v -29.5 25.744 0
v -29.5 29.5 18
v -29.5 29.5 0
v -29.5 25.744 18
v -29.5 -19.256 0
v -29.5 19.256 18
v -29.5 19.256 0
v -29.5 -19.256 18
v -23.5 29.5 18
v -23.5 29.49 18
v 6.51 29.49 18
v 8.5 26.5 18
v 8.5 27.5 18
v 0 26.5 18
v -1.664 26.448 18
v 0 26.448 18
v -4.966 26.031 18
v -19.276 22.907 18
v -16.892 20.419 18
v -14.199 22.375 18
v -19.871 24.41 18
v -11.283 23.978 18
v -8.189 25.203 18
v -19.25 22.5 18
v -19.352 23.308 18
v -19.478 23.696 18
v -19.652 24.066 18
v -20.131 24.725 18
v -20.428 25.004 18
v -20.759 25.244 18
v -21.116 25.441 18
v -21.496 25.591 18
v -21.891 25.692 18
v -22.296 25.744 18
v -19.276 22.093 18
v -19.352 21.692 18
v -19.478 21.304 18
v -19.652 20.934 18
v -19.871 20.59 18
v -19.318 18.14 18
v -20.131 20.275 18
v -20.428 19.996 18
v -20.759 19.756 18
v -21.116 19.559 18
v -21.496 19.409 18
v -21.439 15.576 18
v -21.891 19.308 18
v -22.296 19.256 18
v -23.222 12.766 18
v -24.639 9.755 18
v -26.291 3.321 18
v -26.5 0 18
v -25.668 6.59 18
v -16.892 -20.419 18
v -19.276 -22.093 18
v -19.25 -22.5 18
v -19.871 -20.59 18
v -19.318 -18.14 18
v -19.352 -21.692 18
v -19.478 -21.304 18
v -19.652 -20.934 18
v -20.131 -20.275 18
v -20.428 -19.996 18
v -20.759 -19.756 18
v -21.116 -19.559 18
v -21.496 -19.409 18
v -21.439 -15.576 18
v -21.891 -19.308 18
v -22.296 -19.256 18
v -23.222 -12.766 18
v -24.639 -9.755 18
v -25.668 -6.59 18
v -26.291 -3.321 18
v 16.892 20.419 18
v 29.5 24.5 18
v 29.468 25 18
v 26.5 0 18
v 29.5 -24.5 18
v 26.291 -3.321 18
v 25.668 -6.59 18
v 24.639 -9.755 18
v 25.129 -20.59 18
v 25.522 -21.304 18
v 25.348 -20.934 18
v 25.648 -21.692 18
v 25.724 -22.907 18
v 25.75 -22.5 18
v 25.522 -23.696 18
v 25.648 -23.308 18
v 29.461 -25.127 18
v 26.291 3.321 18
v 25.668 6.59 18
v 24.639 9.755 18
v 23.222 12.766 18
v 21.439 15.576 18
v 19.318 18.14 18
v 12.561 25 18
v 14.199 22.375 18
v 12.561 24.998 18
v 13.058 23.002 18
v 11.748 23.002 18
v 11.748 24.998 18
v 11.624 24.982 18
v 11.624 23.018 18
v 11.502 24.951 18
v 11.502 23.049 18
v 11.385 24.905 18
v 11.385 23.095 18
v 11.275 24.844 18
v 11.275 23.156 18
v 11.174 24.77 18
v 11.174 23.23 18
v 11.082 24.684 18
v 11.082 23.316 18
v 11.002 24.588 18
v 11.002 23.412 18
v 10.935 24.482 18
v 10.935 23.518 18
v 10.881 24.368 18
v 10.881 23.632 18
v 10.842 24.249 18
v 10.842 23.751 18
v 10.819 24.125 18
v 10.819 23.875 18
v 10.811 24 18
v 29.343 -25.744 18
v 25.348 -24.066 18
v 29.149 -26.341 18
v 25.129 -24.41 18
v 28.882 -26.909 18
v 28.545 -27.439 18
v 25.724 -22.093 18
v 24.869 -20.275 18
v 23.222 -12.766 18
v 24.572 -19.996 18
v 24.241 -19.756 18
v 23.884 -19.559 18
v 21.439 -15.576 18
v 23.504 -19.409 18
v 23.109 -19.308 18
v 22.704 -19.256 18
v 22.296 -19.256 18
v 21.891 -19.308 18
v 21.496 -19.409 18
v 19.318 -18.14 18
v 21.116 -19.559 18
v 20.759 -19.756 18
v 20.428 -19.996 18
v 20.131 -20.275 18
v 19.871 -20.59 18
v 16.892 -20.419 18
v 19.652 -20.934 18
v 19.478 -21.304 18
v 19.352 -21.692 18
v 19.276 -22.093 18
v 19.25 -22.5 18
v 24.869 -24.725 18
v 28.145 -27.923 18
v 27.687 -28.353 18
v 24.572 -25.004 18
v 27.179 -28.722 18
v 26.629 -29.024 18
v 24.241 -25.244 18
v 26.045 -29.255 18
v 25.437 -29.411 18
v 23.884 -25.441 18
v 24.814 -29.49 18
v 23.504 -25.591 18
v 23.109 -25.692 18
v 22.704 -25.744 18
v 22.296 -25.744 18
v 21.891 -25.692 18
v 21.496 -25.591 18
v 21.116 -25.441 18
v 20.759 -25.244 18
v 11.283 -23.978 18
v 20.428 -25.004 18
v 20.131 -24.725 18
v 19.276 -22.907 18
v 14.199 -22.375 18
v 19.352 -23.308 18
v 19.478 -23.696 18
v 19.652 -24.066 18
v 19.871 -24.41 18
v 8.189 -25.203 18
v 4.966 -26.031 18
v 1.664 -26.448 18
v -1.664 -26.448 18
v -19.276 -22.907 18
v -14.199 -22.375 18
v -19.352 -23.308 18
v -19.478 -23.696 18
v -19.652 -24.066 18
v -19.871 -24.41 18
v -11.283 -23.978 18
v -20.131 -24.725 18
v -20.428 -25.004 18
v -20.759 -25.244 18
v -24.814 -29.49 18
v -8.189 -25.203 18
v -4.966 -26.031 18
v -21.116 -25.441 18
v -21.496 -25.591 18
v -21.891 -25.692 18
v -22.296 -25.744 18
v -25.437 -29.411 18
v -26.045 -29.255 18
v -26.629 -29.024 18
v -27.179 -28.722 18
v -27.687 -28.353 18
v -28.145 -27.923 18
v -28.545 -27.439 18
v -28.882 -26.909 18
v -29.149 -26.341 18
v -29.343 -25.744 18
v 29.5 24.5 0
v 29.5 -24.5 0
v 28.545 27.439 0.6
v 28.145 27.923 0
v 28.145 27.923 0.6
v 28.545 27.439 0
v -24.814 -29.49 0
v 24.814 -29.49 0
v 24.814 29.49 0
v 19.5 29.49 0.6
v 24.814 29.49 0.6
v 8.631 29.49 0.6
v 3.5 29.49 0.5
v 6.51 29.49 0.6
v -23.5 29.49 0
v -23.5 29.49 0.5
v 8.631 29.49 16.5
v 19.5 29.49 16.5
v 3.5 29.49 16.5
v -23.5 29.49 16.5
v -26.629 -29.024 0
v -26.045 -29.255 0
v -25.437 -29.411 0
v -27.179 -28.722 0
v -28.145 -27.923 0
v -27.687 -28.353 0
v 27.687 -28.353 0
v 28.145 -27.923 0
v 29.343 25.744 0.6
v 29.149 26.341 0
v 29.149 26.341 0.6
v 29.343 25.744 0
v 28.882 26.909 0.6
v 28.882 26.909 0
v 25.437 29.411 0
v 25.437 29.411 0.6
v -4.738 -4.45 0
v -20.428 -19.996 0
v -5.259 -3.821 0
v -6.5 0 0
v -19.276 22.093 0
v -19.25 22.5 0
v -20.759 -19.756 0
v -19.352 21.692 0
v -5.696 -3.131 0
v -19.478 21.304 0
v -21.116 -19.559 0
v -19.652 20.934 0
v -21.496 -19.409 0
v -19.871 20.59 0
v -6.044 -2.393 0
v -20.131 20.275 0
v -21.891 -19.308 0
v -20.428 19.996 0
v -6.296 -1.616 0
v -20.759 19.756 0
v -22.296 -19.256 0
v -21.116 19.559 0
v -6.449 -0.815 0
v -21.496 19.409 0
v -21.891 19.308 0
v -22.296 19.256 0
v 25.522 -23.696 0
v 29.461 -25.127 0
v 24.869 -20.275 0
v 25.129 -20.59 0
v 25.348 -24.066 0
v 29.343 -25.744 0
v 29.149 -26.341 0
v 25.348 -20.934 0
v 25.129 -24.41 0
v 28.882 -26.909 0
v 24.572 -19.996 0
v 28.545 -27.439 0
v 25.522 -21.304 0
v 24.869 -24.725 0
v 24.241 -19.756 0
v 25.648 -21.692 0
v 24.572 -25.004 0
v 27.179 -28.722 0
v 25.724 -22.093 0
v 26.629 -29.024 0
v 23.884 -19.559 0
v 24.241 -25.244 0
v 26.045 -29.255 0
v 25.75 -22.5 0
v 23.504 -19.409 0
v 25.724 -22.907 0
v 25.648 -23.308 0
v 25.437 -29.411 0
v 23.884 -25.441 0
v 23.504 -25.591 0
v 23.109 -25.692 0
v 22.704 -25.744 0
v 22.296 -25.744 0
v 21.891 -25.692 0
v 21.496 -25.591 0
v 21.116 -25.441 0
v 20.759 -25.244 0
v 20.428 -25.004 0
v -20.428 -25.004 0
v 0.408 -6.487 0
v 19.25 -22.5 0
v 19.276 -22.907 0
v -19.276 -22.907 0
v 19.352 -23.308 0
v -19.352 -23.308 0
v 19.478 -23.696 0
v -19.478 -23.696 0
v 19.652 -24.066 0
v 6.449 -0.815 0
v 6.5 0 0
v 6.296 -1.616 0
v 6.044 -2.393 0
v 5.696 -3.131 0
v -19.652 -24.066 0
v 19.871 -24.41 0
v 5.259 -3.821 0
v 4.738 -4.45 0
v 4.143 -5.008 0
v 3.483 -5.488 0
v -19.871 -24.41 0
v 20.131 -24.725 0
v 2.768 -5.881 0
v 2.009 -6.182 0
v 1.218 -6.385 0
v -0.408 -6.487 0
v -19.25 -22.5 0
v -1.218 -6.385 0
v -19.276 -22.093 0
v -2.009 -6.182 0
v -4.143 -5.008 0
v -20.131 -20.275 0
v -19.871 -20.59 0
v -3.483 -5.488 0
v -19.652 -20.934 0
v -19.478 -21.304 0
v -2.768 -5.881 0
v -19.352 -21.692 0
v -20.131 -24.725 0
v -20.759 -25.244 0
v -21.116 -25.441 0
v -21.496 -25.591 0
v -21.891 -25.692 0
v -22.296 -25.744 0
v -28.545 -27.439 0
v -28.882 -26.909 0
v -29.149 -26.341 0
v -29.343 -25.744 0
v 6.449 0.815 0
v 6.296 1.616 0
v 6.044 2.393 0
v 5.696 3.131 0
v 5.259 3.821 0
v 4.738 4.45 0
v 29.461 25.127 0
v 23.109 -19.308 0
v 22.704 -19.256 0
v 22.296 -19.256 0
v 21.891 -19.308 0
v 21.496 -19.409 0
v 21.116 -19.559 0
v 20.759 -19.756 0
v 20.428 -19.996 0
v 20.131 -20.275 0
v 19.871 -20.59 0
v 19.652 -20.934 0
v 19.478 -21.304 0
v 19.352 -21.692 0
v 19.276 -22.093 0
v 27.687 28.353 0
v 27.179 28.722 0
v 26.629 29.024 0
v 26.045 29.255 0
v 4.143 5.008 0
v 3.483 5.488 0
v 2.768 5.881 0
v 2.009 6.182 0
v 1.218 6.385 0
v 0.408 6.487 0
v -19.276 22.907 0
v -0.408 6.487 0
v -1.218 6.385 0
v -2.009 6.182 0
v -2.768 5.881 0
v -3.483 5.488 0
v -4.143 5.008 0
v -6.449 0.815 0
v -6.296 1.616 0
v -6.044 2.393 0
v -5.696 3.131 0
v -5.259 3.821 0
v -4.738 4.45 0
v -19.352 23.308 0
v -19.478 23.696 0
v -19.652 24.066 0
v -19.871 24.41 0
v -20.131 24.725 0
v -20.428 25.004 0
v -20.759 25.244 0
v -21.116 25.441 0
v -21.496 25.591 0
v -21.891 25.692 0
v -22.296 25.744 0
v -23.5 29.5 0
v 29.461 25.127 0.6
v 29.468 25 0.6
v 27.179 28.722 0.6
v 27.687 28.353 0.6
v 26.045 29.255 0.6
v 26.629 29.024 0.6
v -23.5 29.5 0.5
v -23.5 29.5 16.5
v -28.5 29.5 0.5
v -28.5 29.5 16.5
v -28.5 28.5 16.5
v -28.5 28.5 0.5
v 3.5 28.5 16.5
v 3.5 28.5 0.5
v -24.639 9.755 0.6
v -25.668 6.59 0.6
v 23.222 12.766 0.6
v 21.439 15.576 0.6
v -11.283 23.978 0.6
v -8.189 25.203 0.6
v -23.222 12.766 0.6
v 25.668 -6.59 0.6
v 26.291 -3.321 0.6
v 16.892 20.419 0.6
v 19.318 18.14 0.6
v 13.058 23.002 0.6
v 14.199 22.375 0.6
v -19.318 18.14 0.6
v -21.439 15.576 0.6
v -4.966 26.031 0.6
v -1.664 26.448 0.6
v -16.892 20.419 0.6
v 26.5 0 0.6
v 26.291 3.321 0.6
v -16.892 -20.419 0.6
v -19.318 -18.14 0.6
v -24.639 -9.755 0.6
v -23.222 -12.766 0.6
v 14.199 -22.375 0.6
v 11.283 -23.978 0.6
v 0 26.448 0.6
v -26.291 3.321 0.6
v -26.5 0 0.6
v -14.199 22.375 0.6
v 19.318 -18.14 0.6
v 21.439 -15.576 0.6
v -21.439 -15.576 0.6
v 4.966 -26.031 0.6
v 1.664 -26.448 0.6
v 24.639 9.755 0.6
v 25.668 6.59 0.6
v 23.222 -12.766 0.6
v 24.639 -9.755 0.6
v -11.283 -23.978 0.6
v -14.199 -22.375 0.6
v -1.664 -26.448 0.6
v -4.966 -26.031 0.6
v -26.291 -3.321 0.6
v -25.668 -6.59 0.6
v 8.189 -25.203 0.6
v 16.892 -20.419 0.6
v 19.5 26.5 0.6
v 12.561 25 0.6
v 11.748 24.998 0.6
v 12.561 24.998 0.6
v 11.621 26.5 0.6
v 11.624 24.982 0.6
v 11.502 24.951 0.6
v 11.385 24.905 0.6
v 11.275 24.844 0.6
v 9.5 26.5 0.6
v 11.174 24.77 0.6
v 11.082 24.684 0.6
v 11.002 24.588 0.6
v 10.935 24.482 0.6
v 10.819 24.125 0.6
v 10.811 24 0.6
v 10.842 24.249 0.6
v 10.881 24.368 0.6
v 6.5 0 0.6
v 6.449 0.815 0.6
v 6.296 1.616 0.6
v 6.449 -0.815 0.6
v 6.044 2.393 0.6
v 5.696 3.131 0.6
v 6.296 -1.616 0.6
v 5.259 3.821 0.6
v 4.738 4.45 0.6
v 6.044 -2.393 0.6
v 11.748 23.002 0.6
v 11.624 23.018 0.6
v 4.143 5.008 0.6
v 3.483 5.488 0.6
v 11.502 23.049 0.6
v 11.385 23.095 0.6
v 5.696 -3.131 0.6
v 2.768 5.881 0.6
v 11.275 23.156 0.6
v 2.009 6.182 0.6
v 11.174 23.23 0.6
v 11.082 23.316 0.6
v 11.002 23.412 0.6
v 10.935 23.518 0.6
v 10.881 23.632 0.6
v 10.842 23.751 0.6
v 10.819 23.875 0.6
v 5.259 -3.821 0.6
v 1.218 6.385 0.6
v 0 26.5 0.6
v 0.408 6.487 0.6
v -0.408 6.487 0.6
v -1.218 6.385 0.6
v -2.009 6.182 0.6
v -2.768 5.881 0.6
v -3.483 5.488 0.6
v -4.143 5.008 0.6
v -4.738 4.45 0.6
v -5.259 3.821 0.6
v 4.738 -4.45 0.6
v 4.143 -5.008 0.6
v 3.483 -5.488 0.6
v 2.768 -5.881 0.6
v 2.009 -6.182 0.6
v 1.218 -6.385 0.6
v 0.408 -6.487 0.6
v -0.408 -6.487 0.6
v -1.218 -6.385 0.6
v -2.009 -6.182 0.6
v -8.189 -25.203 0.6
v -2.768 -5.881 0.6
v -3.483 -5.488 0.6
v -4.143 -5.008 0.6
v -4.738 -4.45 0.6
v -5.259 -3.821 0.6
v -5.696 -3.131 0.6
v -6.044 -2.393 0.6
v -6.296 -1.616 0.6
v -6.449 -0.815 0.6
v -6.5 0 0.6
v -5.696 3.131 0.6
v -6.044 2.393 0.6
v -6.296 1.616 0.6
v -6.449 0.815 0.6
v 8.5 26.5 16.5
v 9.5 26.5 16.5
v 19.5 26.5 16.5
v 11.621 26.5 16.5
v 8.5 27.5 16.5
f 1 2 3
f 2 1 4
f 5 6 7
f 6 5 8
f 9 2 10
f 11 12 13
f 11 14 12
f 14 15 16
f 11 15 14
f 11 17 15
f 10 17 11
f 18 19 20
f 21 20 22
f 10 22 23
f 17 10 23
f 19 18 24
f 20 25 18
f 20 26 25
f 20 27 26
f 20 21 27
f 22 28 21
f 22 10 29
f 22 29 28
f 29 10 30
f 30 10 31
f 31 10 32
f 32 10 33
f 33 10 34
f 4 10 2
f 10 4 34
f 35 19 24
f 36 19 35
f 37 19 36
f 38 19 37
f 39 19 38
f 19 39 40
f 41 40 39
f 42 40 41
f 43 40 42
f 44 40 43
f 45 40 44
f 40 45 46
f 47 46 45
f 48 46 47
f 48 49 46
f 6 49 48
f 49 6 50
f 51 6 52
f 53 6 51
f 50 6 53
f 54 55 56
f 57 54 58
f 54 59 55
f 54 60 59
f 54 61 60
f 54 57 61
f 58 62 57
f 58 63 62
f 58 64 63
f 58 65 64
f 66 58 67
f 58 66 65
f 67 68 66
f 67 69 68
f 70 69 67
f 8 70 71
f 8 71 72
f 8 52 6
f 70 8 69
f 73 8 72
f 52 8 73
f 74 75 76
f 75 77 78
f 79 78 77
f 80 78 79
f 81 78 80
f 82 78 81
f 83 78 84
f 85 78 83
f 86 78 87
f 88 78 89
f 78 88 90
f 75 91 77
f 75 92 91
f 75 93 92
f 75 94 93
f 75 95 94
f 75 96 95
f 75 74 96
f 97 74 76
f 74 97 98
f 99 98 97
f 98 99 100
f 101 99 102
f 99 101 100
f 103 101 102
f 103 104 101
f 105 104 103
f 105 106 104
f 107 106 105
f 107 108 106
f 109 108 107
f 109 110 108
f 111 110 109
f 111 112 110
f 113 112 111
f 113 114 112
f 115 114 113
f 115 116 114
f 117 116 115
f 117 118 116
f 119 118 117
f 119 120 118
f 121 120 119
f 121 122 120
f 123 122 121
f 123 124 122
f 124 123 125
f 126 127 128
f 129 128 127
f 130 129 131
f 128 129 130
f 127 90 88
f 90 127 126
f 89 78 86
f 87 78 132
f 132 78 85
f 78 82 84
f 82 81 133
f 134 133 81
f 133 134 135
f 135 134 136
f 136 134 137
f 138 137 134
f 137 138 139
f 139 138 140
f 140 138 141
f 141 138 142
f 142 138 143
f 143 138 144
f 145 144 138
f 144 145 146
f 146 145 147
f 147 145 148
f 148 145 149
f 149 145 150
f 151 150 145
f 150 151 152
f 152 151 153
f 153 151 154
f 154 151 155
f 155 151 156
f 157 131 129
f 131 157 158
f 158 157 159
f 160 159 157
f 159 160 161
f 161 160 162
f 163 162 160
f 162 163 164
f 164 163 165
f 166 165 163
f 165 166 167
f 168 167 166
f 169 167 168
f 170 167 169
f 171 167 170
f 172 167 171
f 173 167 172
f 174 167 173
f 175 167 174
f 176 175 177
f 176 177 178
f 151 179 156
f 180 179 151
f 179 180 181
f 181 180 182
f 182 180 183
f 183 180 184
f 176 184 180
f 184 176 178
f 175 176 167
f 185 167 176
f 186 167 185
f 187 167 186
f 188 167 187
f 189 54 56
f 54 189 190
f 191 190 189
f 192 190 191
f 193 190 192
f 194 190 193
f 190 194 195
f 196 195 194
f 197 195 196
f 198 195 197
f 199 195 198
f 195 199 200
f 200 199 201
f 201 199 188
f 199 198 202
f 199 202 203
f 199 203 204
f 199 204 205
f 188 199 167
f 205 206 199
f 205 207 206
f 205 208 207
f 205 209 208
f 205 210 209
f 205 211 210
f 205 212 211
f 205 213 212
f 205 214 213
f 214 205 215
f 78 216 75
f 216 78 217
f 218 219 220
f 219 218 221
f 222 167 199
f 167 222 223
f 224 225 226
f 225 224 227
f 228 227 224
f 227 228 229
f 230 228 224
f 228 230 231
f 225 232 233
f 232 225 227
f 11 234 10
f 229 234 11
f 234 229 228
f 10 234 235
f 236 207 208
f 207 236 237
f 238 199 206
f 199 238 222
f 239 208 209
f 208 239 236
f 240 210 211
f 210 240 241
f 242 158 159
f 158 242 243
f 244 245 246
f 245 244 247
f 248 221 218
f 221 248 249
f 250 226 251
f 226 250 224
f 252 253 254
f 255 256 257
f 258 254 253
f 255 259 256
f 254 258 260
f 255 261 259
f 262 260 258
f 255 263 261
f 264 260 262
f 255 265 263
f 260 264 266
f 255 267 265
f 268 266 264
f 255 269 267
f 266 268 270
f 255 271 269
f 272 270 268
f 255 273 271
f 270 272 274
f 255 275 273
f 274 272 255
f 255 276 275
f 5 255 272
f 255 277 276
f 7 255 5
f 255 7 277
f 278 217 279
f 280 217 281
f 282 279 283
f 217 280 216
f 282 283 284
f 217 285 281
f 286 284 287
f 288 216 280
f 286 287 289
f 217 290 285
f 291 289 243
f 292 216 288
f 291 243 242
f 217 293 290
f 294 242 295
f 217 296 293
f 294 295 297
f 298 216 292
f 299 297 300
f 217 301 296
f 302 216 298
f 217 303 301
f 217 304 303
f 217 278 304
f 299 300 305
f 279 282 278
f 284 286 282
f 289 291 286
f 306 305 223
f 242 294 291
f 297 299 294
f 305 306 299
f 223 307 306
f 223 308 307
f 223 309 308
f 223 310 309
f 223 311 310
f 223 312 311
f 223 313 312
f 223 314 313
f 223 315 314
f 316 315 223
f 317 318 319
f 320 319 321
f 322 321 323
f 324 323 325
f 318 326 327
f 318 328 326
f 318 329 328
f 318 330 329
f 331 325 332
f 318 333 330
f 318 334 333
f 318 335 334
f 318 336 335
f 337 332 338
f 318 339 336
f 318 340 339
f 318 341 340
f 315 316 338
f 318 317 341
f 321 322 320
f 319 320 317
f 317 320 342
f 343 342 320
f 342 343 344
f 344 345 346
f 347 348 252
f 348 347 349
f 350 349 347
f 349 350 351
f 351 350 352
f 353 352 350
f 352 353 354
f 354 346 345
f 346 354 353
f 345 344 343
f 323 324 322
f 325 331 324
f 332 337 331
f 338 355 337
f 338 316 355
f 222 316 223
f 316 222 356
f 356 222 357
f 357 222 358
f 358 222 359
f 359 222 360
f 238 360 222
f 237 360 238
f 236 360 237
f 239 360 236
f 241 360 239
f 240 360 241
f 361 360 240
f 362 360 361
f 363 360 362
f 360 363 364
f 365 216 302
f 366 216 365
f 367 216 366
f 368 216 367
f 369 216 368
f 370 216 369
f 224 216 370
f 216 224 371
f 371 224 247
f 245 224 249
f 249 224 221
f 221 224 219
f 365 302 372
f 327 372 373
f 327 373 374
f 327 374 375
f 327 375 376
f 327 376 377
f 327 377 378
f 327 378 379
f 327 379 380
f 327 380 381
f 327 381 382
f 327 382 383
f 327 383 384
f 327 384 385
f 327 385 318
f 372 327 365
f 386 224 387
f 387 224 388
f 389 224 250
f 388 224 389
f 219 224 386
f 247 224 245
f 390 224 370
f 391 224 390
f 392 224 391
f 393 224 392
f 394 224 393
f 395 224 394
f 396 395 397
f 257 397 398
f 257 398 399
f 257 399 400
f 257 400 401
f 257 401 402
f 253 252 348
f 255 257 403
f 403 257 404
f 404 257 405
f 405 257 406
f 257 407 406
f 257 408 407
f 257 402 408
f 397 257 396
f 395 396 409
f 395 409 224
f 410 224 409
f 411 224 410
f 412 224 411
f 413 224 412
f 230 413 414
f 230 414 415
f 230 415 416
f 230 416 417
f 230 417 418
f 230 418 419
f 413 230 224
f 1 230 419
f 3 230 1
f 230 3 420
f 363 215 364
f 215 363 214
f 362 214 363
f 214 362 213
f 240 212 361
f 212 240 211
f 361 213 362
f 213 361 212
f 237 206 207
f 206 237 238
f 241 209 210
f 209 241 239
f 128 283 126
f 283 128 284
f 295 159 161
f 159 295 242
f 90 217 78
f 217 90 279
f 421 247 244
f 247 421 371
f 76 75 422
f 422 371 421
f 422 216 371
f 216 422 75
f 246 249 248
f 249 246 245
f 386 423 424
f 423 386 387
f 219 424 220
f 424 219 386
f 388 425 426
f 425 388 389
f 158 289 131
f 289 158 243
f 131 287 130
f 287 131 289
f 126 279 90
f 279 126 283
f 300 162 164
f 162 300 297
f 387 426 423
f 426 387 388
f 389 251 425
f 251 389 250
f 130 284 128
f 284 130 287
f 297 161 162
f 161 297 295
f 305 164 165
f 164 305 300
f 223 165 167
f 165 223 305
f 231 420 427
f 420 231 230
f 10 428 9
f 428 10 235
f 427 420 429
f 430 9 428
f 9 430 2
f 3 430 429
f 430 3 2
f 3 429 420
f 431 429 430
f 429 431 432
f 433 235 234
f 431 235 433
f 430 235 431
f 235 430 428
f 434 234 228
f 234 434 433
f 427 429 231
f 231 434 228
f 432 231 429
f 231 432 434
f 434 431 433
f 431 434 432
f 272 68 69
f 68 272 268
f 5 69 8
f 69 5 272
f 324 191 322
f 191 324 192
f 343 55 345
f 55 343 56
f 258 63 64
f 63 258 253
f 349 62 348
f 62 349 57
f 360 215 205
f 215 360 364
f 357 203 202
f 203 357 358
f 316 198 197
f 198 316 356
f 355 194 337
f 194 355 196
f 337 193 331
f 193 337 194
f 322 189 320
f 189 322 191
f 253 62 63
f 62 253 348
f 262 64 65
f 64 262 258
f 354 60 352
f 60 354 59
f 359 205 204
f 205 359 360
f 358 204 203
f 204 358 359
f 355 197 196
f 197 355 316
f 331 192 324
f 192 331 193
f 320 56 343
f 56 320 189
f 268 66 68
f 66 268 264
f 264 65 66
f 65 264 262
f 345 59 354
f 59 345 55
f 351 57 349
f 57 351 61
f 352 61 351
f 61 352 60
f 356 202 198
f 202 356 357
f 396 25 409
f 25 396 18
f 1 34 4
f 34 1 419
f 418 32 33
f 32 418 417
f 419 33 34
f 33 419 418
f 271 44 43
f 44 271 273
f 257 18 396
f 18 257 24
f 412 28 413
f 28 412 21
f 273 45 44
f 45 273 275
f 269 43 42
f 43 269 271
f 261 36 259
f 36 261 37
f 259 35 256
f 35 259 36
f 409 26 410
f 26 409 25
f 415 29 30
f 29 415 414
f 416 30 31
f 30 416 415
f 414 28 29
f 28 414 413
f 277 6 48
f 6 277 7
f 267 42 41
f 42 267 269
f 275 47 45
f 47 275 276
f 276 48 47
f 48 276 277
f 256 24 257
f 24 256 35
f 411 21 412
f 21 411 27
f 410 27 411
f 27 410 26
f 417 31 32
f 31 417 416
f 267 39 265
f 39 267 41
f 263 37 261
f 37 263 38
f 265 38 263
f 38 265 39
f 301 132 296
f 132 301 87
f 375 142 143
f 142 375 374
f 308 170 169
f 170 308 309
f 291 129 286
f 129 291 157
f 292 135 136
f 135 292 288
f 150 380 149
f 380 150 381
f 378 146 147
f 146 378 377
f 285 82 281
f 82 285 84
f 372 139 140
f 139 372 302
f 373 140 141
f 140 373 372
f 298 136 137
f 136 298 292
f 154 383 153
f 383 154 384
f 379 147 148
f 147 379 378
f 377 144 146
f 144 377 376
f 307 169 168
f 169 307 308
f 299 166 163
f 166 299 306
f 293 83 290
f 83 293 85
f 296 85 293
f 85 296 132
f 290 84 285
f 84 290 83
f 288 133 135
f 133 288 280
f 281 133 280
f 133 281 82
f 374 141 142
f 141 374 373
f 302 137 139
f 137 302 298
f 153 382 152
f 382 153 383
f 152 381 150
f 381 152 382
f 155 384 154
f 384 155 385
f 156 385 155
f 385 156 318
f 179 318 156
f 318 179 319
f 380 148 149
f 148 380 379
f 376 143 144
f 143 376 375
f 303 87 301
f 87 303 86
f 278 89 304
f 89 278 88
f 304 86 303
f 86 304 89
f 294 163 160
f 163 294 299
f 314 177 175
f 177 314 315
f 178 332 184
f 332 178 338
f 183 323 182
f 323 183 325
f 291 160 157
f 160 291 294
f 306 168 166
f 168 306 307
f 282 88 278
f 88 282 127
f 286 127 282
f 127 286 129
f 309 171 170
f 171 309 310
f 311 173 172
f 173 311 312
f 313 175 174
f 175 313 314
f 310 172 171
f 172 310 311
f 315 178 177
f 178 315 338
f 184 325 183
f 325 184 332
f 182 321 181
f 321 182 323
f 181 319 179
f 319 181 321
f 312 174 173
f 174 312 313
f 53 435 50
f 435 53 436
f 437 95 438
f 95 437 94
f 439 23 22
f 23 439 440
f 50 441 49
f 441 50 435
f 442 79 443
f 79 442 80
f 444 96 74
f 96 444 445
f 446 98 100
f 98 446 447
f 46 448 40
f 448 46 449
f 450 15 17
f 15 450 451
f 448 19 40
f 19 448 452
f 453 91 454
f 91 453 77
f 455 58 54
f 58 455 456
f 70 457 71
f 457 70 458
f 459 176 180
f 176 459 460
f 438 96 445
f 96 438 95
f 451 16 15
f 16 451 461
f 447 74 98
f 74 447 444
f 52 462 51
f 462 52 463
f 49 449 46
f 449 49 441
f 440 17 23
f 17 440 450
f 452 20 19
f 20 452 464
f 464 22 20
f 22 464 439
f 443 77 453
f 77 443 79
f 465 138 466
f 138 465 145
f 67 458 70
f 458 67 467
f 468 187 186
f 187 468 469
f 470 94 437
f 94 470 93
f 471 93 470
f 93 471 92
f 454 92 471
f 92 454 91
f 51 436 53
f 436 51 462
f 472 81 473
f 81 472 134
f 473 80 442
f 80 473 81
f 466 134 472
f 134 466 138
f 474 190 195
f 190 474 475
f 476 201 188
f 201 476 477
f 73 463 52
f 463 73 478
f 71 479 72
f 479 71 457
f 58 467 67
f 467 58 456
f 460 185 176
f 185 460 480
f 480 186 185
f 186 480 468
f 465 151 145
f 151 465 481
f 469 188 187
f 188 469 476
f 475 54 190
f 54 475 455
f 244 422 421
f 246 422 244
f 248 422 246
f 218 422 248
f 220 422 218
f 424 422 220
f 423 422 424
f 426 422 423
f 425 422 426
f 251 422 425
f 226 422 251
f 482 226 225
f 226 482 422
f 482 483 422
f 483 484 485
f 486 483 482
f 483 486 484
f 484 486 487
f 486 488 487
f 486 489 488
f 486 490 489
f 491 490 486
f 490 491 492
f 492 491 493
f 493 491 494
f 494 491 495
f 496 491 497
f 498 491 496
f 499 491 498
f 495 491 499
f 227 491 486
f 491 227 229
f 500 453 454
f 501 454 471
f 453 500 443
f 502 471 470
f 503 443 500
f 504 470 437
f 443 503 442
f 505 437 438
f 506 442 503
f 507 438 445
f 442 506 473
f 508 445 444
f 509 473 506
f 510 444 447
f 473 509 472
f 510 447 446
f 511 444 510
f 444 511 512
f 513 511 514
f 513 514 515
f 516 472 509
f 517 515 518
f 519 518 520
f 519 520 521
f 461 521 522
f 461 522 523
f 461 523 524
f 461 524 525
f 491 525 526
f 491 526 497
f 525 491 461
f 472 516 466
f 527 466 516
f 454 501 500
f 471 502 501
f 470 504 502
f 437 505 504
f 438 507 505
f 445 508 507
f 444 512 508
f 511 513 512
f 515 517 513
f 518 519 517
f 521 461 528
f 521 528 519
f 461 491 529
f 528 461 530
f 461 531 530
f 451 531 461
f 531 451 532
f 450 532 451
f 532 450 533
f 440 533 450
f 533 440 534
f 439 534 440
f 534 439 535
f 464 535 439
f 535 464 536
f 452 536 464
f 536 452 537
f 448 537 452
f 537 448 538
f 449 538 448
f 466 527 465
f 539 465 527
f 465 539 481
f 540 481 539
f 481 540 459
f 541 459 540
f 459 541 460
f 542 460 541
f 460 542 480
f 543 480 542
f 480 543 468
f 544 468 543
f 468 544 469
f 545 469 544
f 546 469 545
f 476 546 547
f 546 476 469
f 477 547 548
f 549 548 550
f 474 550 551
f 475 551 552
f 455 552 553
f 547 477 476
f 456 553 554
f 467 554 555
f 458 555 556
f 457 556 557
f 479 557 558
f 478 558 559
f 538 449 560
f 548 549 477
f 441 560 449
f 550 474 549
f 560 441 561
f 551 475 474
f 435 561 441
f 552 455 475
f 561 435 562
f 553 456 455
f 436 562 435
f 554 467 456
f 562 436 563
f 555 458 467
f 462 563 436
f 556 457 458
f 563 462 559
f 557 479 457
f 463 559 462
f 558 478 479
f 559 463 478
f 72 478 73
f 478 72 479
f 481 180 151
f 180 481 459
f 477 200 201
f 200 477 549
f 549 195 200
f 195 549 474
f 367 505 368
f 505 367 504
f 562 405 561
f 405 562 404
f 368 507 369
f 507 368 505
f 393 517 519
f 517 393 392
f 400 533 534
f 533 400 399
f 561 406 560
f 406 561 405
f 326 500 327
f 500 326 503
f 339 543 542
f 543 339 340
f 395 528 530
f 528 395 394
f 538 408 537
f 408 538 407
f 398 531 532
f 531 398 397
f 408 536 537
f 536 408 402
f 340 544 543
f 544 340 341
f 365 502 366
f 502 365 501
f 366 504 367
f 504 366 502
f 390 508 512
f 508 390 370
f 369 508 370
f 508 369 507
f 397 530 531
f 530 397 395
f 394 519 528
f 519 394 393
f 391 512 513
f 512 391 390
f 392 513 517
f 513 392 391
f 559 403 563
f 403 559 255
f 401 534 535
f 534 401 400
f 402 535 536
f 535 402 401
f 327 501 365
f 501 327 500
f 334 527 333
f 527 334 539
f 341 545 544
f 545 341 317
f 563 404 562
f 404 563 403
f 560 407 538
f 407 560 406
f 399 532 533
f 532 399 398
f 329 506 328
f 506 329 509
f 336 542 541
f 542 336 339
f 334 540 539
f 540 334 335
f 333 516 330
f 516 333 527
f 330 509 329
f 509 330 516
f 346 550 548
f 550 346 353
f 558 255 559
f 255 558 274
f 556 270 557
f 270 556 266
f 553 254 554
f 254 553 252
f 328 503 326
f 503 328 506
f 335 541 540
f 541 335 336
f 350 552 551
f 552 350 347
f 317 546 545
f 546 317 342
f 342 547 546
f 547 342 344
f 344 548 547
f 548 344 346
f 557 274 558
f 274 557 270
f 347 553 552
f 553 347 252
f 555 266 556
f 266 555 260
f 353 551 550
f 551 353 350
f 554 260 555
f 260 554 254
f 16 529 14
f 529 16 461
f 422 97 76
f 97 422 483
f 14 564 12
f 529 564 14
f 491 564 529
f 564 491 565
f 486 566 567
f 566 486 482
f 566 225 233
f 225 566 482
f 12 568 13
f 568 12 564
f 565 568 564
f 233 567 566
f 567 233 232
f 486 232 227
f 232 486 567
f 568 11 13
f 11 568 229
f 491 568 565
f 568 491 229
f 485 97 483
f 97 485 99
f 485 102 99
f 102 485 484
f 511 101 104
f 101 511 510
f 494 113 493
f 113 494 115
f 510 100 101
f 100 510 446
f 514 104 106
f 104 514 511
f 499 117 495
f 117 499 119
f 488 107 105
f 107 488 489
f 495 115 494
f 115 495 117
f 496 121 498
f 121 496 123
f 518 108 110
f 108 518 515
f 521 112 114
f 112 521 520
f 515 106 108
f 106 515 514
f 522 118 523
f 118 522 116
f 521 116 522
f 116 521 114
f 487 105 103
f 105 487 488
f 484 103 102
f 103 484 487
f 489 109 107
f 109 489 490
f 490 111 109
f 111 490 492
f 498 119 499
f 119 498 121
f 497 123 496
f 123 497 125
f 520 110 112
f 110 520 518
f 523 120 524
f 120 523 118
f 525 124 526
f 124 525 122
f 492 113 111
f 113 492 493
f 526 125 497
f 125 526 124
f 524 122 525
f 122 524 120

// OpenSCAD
$fn = 50;


union() {
	difference() {
		union() {
			translate(v = [0, 0, 0]) {
				rotate(a = [0, 0, 0]) {
					hull() {
						translate(v = [-24.5000000000, 24.5000000000, 0]) {
							rotate(a = [0, 0, 0]) {
								translate(v = [0, 0, 0]) {
									rotate(a = [0, 0, 0]) {
										cylinder(h = 18, r = 5);
									}
								}
							}
						}
						translate(v = [24.5000000000, 24.5000000000, 0]) {
							rotate(a = [0, 0, 0]) {
								translate(v = [0, 0, 0]) {
									rotate(a = [0, 0, 0]) {
										cylinder(h = 18, r = 5);
									}
								}
							}
						}
						translate(v = [-24.5000000000, -24.5000000000, 0]) {
							rotate(a = [0, 0, 0]) {
								translate(v = [0, 0, 0]) {
									rotate(a = [0, 0, 0]) {
										cylinder(h = 18, r = 5);
									}
								}
							}
						}
						translate(v = [24.5000000000, -24.5000000000, 0]) {
							rotate(a = [0, 0, 0]) {
								translate(v = [0, 0, 0]) {
									rotate(a = [0, 0, 0]) {
										cylinder(h = 18, r = 5);
									}
								}
							}
						}
					}
				}
			}
			translate(v = [-29.5000000000, 23.5000000000, 0]) {
				rotate(a = [0, 0, 0]) {
					cube(size = [6, 6, 18]);
				}
			}
		}
		union() {
			#translate(v = [-28.5000000000, 28.5000000000, 0.5000000000]) {
				rotate(a = [0, 0, 0]) {
					cube(size = [32, 1, 16]);
				}
			}
			translate(v = [-30.0000000000, -22.5000000000, -125]) {
				rotate(a = [0, 0, 0]) {
					hull() {
						translate(v = [7.5000000000, 0, 0]) {
							rotate(a = [0, 0, 0]) {
								translate(v = [0, 0, 0]) {
									rotate(a = [0, 0, 0]) {
										cylinder(h = 250, r = 3.2500000000);
									}
								}
							}
						}
						translate(v = [-7.5000000000, 0, 0]) {
							rotate(a = [0, 0, 0]) {
								translate(v = [0, 0, 0]) {
									rotate(a = [0, 0, 0]) {
										cylinder(h = 250, r = 3.2500000000);
									}
								}
							}
						}
					}
				}
			}
			translate(v = [-30.0000000000, 22.5000000000, -125]) {
				rotate(a = [0, 0, 0]) {
					hull() {
						translate(v = [7.5000000000, 0, 0]) {
							rotate(a = [0, 0, 0]) {
								translate(v = [0, 0, 0]) {
									rotate(a = [0, 0, 0]) {
										cylinder(h = 250, r = 3.2500000000);
									}
								}
							}
						}
						translate(v = [-7.5000000000, 0, 0]) {
							rotate(a = [0, 0, 0]) {
								translate(v = [0, 0, 0]) {
									rotate(a = [0, 0, 0]) {
										cylinder(h = 250, r = 3.2500000000);
									}
								}
							}
						}
					}
				}
			}
			translate(v = [22.5000000000, -22.5000000000, -125.0000000000]) {
				rotate(a = [0, 0, 0]) {
					cylinder(h = 250, r = 3.2500000000);
				}
			}
			translate(v = [0, 0, 0.6000000000]) {
				rotate(a = [0, 0, 0]) {
					cylinder(h = 20.4000000000, r = 26.5000000000);
				}
			}
			translate(v = [0, 0, -9.0000000000]) {
				rotate(a = [0, 0, 0]) {
					cylinder(h = 18, r = 6.5000000000);
				}
			}
			translate(v = [0.0000000000, 25.0000000000, 0.6000000000]) {
				rotate(a = [0, 0, 0]) {
					cube(size = [29.5000000000, 1.5000000000, 20.4000000000]);
				}
			}
			translate(v = [19.5000000000, 25.0000000000, 0.6000000000]) {
				rotate(a = [0, 0, 0]) {
					cube(size = [10, 4.5000000000, 20.4000000000]);
				}
			}
			translate(v = [8.5000000000, 25.0000000000, 16.5000000000]) {
				rotate(a = [0, 0, 0]) {
					cube(size = [21, 4.5000000000, 1.5000000000]);
				}
			}
			translate(v = [5.7500000000, 30.2500000000, 0.6000000000]) {
				rotate(a = [0, 0, -45]) {
					cube(size = [7.5000000000, 1.5000000000, 20.4000000000]);
				}
			}
			translate(v = [5.0610000000, 23.0000000000, 0.6000000000]) {
				rotate(a = [0, 0, 0]) {
					cube(size = [7.5000000000, 2, 17.4000000000]);
				}
			}
		}
	}
	union() {
		translate(v = [14.3110000000, 24.0000000000, 0]) {
			rotate(a = [0, 0, 0]) {
				hull() {
					translate(v = [2.5000000000, 0, 0]) {
						rotate(a = [0, 0, 0]) {
							#translate(v = [0, 0, 0]) {
								rotate(a = [0, 0, 0]) {
									cylinder(h = 18, r = 1.0000000000);
								}
							}
						}
					}
					translate(v = [-2.5000000000, 0, 0]) {
						rotate(a = [0, 0, 0]) {
							#translate(v = [0, 0, 0]) {
								rotate(a = [0, 0, 0]) {
									cylinder(h = 18, r = 1.0000000000);
								}
							}
						}
					}
				}
			}
		}
	}
}
